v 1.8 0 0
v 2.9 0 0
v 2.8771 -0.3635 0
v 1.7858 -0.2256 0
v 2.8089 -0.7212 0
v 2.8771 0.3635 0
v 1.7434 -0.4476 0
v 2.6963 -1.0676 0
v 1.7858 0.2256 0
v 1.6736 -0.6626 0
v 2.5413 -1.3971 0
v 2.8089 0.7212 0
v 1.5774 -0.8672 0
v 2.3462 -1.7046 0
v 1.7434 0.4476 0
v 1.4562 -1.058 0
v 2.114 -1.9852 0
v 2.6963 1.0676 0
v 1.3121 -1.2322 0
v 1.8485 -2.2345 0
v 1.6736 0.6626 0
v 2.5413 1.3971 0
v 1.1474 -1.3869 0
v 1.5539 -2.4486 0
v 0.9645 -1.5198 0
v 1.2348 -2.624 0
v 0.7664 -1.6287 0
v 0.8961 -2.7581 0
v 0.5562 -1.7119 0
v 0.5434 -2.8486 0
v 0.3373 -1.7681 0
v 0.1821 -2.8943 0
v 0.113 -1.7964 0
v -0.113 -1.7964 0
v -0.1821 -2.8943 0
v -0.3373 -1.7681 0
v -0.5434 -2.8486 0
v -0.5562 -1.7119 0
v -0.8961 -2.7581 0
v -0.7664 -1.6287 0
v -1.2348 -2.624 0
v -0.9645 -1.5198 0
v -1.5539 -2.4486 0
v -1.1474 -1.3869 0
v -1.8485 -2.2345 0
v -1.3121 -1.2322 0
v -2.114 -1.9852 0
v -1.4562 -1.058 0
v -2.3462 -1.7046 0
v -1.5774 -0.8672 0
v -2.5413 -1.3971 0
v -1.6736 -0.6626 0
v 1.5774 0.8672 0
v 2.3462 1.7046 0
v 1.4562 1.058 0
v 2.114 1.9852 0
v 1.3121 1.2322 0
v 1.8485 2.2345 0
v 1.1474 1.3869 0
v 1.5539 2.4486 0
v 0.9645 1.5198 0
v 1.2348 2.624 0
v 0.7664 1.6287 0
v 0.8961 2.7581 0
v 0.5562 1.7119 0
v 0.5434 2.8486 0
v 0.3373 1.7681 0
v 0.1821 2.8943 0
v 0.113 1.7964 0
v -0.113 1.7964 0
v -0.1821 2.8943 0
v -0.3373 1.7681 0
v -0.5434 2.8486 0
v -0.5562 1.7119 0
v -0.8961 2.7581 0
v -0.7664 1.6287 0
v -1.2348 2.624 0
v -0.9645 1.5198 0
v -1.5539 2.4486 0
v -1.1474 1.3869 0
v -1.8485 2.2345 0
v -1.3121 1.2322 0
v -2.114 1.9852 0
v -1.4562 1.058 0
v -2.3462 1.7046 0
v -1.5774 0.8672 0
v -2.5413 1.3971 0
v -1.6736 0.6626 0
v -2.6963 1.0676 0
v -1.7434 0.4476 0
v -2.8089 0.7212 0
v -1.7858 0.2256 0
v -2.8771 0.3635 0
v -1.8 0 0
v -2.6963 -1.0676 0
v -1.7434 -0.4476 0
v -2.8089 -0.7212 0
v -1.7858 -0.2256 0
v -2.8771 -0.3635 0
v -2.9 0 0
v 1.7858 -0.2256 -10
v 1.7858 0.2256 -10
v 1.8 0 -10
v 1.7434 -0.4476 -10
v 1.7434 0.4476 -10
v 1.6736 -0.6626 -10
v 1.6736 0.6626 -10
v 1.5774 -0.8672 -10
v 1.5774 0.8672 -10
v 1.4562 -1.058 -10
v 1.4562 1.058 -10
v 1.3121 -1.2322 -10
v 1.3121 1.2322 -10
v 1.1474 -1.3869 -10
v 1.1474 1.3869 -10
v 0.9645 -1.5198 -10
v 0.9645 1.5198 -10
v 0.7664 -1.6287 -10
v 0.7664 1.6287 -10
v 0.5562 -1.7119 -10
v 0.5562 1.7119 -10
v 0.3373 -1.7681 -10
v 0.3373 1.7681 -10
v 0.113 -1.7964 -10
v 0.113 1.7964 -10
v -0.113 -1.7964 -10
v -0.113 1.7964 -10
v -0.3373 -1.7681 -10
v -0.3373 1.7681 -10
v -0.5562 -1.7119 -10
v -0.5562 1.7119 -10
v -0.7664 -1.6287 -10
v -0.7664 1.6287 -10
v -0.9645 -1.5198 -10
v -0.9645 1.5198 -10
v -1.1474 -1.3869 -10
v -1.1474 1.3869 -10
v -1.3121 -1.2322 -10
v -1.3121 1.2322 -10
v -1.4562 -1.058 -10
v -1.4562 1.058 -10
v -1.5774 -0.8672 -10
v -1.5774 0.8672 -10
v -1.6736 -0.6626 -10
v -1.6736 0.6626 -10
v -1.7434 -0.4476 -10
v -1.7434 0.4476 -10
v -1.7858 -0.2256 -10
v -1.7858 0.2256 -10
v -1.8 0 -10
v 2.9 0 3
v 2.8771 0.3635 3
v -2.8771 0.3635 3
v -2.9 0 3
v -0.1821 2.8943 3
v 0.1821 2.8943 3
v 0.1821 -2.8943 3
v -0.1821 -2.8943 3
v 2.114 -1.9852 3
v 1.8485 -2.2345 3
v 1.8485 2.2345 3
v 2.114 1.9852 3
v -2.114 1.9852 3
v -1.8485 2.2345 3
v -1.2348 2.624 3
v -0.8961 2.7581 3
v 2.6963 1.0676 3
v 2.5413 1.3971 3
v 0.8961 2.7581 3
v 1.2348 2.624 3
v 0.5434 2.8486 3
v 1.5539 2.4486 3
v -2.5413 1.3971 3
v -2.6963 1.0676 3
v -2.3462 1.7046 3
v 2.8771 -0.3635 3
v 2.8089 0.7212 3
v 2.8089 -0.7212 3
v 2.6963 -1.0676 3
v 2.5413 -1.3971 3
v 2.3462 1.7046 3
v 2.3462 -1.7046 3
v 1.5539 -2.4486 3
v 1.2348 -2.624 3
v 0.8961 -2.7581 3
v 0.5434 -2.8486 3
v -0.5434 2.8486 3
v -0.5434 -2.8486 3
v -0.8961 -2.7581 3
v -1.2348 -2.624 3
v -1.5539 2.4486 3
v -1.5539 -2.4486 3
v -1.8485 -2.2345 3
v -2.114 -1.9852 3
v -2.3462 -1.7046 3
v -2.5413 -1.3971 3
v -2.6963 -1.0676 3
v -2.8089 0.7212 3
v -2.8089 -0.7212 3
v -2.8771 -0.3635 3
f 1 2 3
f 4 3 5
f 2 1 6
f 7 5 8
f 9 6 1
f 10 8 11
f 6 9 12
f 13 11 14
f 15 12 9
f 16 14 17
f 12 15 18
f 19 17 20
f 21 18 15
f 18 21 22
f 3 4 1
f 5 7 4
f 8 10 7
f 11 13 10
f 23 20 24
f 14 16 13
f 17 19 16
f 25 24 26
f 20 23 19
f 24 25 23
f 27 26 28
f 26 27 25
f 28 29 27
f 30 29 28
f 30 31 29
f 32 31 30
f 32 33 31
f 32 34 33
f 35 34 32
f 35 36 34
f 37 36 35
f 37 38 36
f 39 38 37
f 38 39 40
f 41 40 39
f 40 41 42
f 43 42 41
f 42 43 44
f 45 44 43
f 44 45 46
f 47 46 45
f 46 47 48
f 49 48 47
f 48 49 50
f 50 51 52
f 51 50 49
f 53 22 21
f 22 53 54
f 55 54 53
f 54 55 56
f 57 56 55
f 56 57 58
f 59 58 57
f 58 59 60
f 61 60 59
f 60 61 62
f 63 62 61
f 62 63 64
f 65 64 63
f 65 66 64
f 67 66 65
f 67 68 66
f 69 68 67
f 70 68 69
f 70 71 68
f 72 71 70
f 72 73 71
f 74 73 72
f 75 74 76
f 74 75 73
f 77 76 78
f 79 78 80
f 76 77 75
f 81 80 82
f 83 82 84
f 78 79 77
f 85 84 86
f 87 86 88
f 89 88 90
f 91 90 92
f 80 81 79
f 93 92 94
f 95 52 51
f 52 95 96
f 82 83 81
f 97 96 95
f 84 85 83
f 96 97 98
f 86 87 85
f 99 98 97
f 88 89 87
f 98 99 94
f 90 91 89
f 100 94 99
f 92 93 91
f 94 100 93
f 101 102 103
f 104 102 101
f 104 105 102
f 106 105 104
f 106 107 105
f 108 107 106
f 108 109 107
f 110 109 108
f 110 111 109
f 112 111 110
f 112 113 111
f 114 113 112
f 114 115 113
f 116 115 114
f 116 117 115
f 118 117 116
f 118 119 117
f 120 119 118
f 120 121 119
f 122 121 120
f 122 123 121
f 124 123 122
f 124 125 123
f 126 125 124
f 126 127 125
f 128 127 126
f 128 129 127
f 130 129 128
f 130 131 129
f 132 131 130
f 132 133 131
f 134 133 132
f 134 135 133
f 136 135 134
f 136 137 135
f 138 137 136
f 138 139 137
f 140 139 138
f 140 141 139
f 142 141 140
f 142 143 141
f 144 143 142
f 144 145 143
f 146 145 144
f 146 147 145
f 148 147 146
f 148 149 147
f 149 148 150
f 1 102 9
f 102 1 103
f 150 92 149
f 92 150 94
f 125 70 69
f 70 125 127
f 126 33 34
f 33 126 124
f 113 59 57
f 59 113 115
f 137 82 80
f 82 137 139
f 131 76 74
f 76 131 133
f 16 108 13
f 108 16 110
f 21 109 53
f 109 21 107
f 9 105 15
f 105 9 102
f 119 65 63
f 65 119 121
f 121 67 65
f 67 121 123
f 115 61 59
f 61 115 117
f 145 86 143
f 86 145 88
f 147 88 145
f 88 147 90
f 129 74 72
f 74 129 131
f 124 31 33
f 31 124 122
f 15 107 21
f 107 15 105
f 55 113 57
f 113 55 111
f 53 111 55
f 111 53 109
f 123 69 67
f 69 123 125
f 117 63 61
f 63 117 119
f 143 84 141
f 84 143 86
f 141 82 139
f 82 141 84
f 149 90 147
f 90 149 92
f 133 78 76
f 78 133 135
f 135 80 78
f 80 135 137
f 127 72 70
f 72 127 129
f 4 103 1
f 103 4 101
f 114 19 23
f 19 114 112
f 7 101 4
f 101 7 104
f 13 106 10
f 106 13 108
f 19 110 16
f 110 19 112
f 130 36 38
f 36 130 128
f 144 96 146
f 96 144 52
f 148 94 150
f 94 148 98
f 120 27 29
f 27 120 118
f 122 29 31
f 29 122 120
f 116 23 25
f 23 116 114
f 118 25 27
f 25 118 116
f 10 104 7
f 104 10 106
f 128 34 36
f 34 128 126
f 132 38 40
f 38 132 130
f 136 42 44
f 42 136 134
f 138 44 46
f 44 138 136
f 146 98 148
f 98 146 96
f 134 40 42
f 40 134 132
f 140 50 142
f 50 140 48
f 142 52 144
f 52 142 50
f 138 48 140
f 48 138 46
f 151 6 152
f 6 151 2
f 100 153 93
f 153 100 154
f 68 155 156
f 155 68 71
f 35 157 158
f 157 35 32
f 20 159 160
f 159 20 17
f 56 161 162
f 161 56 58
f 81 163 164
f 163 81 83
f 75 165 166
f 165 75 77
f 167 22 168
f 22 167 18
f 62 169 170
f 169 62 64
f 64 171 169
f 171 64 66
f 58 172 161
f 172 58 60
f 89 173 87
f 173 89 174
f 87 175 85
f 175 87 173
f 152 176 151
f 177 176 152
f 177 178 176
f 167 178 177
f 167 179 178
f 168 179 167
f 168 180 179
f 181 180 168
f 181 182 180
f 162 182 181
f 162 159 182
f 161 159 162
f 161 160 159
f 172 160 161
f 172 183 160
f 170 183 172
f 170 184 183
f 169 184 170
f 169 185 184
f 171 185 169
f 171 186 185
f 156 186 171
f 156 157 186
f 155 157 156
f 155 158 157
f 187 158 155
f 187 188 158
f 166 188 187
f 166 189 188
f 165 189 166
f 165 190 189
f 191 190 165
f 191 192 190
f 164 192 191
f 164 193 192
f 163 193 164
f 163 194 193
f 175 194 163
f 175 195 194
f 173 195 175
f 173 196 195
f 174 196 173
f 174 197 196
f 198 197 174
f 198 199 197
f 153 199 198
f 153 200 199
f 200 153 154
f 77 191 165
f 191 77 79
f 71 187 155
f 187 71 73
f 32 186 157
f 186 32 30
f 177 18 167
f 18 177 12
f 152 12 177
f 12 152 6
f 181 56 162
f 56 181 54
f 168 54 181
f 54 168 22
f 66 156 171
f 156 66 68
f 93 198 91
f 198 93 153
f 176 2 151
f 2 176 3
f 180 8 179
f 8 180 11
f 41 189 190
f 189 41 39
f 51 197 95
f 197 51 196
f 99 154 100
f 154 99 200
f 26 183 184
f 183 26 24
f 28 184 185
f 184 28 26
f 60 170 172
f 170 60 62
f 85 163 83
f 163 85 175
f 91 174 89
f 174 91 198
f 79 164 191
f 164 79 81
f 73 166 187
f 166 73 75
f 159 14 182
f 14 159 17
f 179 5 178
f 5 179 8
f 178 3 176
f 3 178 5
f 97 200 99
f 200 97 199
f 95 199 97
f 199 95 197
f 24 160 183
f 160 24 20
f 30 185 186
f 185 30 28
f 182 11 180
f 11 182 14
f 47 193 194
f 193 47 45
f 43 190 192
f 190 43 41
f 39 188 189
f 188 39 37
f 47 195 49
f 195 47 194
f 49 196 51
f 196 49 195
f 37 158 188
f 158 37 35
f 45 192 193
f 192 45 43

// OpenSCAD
$fn = 50;


difference() {
	union() {
		translate(v = [0, 0, 0]) {
			rotate(a = [0, 0, 0]) {
				difference() {
					union() {
						translate(v = [0, 0, -10.0000000000]) {
							cylinder(h = 10, r = 1.5000000000);
						}
						translate(v = [0, 0, -10.0000000000]) {
							cylinder(h = 10, r = 1.8000000000);
						}
						cylinder(h = 3, r = 2.9000000000);
						translate(v = [0, 0, -10.0000000000]) {
							cylinder(h = 10, r = 1.5000000000);
						}
					}
					union();
				}
			}
		}
	}
	union();
}
